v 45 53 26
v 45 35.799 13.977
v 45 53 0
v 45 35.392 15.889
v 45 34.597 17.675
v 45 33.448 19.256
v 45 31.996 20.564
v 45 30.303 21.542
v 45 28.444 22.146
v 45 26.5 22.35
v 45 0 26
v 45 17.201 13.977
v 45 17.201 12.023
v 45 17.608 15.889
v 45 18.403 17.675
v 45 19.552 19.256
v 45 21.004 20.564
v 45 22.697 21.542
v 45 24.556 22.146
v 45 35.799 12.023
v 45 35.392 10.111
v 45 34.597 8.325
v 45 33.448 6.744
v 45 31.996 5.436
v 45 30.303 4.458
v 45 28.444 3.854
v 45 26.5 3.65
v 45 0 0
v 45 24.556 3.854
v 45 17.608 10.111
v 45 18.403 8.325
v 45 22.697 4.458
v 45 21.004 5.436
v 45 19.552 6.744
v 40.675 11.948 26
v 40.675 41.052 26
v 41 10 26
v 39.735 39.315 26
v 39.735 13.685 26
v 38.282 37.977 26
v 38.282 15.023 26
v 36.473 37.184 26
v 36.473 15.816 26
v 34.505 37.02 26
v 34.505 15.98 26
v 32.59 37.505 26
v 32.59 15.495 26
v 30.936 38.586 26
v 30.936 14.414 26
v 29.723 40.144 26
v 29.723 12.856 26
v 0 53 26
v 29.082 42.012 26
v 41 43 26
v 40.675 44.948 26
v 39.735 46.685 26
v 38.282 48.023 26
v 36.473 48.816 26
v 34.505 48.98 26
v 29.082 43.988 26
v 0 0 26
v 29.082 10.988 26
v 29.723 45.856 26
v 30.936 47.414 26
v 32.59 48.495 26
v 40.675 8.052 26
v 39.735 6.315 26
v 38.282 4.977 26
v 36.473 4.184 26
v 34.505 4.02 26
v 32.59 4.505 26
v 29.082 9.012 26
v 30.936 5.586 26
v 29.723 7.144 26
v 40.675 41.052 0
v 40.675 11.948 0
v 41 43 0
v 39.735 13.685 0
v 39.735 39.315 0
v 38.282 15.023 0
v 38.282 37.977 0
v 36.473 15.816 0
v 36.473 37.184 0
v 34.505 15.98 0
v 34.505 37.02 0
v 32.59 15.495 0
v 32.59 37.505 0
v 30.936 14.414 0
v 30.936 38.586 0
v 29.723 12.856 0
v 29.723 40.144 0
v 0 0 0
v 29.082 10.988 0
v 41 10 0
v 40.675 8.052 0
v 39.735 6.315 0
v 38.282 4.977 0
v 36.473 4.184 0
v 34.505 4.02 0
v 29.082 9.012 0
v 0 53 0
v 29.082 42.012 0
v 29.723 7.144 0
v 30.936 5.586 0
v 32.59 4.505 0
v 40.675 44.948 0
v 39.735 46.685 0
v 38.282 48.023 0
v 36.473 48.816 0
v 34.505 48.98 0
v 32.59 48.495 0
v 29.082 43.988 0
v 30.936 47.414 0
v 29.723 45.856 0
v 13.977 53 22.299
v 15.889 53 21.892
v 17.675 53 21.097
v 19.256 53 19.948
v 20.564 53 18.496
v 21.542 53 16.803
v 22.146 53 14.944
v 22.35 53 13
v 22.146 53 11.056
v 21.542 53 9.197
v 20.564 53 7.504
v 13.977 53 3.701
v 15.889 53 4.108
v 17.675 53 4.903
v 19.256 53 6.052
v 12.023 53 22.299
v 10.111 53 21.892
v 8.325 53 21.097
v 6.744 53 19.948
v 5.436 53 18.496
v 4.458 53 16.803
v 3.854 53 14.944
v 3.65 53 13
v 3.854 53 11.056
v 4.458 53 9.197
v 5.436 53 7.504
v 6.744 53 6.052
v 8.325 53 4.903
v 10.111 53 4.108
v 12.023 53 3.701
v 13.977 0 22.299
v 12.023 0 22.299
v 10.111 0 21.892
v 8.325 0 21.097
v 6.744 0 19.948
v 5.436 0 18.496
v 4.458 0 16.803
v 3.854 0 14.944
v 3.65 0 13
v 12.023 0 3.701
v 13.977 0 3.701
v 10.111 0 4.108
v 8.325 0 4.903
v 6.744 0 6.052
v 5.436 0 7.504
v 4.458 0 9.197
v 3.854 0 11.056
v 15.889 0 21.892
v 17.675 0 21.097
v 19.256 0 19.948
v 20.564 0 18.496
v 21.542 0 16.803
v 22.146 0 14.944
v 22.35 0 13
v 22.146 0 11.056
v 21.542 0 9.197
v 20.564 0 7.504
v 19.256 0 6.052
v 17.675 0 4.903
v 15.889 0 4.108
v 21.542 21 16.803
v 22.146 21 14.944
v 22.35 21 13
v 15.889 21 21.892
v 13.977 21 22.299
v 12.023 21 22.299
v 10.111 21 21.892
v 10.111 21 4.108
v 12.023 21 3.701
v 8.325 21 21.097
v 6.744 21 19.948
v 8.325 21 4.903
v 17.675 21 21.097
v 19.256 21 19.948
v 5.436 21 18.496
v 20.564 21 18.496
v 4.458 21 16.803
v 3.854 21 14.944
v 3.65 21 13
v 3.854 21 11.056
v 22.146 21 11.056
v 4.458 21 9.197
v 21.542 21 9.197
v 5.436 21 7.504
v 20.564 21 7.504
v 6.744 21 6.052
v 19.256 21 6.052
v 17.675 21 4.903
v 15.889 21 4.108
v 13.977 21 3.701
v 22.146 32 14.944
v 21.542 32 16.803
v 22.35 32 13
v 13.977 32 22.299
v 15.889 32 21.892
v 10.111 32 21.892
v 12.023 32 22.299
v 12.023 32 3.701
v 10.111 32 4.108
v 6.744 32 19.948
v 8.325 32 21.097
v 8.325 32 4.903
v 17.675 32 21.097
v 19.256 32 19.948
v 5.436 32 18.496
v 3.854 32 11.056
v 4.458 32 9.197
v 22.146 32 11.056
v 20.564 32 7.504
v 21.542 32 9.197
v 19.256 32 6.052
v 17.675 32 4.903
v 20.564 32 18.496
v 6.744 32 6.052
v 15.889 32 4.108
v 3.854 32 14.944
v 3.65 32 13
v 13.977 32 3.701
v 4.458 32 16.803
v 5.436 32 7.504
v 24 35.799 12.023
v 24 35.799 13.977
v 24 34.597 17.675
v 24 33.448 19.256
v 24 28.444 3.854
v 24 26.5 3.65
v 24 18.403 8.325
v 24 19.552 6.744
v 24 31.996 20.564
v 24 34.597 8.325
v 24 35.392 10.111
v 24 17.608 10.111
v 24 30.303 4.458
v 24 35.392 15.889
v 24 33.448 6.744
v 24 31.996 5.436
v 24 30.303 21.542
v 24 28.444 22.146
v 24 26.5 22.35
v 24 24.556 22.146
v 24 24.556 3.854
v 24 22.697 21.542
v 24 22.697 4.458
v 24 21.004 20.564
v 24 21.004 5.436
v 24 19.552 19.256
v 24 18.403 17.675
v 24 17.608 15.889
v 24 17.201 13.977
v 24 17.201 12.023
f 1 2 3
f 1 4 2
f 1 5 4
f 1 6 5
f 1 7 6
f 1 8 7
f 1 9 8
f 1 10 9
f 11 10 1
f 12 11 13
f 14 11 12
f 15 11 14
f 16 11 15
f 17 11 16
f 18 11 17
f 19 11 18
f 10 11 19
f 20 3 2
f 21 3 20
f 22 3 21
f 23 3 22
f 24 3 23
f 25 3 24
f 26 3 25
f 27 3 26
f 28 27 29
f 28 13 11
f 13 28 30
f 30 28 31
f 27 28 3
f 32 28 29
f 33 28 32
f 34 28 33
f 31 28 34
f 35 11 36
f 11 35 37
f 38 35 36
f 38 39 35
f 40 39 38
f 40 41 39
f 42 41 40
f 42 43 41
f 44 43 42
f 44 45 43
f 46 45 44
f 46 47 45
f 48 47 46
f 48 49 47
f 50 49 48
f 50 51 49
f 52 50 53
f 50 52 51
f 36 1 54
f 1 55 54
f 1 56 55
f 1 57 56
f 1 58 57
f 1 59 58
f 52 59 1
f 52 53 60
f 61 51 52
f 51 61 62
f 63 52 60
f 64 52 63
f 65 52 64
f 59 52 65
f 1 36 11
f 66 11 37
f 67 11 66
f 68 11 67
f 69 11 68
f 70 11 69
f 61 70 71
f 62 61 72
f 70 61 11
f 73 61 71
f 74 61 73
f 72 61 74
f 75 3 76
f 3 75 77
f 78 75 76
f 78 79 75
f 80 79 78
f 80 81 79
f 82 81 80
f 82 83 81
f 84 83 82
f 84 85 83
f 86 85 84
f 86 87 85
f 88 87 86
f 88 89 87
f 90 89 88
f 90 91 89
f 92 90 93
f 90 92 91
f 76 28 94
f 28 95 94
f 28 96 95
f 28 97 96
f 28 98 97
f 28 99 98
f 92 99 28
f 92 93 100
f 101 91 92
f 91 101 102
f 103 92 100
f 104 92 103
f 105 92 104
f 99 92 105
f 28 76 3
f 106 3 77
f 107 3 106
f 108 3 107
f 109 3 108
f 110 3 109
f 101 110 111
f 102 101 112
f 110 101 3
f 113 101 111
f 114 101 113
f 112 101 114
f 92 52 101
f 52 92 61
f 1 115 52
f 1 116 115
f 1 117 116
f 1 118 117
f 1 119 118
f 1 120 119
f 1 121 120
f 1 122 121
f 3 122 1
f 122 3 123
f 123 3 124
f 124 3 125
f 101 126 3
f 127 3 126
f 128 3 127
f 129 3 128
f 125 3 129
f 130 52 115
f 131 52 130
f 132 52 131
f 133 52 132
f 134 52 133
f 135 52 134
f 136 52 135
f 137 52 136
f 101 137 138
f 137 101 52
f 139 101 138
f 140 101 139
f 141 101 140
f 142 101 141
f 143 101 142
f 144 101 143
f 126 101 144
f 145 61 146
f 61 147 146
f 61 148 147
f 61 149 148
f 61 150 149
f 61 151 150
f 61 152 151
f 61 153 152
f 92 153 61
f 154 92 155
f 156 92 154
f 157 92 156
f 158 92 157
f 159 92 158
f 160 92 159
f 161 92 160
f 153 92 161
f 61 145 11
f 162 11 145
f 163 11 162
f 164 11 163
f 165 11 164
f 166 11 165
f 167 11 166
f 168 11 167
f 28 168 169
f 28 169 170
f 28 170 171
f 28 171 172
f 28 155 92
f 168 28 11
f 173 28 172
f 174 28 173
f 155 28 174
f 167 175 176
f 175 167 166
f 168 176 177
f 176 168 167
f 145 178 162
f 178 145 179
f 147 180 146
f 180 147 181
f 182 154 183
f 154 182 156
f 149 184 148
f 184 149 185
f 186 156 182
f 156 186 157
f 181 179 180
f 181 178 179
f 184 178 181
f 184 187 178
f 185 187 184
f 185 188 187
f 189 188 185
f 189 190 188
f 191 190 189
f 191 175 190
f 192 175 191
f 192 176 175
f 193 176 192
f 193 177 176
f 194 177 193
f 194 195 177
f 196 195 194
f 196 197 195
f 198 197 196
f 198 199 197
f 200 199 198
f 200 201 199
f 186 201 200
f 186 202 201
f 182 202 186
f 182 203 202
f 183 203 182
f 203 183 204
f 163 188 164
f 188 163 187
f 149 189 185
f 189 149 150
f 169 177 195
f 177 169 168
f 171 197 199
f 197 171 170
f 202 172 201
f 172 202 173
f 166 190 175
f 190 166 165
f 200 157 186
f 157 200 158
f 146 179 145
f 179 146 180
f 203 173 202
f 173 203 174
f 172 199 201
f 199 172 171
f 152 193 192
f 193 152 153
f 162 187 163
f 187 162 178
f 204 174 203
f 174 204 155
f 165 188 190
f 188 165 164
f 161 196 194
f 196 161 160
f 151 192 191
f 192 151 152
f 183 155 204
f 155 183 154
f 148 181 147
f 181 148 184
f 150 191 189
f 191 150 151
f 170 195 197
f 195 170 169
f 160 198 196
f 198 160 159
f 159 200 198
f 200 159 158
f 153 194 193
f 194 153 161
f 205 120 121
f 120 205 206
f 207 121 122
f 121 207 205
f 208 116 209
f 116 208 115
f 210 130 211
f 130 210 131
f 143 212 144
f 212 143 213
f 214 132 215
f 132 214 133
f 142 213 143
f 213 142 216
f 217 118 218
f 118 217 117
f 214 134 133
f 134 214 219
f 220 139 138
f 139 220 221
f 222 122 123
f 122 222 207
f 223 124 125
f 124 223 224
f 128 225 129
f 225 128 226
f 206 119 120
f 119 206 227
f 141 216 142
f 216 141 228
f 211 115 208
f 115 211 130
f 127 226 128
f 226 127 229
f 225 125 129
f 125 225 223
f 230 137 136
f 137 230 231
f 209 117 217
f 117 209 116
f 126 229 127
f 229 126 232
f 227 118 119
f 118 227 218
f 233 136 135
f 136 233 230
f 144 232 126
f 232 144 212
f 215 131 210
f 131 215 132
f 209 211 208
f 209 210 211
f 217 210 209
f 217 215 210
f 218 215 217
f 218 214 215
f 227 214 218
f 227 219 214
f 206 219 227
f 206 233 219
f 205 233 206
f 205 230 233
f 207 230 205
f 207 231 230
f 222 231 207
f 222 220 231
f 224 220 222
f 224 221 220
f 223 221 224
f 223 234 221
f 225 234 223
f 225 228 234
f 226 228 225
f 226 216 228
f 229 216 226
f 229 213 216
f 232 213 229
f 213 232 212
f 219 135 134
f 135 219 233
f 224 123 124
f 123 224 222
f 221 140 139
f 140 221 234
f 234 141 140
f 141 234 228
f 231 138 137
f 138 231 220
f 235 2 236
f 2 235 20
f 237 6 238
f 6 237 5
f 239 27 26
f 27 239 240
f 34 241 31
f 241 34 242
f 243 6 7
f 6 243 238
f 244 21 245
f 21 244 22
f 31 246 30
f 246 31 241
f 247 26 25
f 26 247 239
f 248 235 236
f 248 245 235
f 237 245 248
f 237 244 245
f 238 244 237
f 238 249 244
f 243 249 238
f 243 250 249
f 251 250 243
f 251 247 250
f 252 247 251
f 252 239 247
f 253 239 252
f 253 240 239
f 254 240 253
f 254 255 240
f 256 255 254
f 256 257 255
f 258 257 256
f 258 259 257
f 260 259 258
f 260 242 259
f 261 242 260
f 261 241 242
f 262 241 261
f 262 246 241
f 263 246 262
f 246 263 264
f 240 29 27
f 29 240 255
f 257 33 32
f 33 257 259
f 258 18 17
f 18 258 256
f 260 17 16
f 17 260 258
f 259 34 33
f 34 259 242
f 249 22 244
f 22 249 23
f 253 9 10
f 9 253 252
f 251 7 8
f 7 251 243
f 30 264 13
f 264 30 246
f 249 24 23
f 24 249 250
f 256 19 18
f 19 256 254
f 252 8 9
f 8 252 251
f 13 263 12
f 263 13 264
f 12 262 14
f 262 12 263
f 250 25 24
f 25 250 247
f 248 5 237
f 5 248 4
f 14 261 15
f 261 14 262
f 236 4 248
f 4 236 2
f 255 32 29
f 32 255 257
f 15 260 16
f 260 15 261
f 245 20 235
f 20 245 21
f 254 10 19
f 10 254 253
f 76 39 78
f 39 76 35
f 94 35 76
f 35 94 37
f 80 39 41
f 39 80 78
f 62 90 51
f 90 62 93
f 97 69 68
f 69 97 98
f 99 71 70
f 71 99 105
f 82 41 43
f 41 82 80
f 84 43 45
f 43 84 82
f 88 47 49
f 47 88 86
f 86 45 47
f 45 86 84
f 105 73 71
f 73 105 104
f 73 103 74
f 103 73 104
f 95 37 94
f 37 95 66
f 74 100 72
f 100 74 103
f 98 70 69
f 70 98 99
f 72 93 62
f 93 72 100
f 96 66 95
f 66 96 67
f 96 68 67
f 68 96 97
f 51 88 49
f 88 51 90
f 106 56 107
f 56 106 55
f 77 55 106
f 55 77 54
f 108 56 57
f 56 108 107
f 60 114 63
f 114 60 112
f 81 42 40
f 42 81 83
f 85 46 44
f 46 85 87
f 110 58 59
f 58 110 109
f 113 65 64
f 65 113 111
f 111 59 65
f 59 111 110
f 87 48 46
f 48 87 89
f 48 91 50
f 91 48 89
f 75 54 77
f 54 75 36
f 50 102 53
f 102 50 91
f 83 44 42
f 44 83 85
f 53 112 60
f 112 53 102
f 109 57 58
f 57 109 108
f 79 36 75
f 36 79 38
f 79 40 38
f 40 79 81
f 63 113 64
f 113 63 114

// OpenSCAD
pipe_rad = 18.7 / 2;
string_rad = 6;
depth = 22;

box_x = 45;
box_y = 53;
box_z = 26;

difference() {
    cube(size=[box_x, box_y, box_z]);
    translate([box_z / 2, depth - 1, box_z / 2])
        rotate([90, 0, 0])
            cylinder(r=pipe_rad, h=depth);
    translate([box_z / 2, box_y + 1, box_z / 2])
        rotate([90, 0, 0])
            cylinder(r=pipe_rad, h=depth);
    translate([box_x - depth + 1, box_y / 2, box_z / 2])
        rotate([0, 90, 0])
            cylinder(r=pipe_rad, h=depth);
    translate([box_x - string_rad - 4, string_rad + 4, -1])
        cylinder(r=string_rad, h=box_z + 2);
    translate([box_x - string_rad - 4, box_y - string_rad - 4, -1])
        cylinder(r=string_rad, h=box_z + 2);
}
